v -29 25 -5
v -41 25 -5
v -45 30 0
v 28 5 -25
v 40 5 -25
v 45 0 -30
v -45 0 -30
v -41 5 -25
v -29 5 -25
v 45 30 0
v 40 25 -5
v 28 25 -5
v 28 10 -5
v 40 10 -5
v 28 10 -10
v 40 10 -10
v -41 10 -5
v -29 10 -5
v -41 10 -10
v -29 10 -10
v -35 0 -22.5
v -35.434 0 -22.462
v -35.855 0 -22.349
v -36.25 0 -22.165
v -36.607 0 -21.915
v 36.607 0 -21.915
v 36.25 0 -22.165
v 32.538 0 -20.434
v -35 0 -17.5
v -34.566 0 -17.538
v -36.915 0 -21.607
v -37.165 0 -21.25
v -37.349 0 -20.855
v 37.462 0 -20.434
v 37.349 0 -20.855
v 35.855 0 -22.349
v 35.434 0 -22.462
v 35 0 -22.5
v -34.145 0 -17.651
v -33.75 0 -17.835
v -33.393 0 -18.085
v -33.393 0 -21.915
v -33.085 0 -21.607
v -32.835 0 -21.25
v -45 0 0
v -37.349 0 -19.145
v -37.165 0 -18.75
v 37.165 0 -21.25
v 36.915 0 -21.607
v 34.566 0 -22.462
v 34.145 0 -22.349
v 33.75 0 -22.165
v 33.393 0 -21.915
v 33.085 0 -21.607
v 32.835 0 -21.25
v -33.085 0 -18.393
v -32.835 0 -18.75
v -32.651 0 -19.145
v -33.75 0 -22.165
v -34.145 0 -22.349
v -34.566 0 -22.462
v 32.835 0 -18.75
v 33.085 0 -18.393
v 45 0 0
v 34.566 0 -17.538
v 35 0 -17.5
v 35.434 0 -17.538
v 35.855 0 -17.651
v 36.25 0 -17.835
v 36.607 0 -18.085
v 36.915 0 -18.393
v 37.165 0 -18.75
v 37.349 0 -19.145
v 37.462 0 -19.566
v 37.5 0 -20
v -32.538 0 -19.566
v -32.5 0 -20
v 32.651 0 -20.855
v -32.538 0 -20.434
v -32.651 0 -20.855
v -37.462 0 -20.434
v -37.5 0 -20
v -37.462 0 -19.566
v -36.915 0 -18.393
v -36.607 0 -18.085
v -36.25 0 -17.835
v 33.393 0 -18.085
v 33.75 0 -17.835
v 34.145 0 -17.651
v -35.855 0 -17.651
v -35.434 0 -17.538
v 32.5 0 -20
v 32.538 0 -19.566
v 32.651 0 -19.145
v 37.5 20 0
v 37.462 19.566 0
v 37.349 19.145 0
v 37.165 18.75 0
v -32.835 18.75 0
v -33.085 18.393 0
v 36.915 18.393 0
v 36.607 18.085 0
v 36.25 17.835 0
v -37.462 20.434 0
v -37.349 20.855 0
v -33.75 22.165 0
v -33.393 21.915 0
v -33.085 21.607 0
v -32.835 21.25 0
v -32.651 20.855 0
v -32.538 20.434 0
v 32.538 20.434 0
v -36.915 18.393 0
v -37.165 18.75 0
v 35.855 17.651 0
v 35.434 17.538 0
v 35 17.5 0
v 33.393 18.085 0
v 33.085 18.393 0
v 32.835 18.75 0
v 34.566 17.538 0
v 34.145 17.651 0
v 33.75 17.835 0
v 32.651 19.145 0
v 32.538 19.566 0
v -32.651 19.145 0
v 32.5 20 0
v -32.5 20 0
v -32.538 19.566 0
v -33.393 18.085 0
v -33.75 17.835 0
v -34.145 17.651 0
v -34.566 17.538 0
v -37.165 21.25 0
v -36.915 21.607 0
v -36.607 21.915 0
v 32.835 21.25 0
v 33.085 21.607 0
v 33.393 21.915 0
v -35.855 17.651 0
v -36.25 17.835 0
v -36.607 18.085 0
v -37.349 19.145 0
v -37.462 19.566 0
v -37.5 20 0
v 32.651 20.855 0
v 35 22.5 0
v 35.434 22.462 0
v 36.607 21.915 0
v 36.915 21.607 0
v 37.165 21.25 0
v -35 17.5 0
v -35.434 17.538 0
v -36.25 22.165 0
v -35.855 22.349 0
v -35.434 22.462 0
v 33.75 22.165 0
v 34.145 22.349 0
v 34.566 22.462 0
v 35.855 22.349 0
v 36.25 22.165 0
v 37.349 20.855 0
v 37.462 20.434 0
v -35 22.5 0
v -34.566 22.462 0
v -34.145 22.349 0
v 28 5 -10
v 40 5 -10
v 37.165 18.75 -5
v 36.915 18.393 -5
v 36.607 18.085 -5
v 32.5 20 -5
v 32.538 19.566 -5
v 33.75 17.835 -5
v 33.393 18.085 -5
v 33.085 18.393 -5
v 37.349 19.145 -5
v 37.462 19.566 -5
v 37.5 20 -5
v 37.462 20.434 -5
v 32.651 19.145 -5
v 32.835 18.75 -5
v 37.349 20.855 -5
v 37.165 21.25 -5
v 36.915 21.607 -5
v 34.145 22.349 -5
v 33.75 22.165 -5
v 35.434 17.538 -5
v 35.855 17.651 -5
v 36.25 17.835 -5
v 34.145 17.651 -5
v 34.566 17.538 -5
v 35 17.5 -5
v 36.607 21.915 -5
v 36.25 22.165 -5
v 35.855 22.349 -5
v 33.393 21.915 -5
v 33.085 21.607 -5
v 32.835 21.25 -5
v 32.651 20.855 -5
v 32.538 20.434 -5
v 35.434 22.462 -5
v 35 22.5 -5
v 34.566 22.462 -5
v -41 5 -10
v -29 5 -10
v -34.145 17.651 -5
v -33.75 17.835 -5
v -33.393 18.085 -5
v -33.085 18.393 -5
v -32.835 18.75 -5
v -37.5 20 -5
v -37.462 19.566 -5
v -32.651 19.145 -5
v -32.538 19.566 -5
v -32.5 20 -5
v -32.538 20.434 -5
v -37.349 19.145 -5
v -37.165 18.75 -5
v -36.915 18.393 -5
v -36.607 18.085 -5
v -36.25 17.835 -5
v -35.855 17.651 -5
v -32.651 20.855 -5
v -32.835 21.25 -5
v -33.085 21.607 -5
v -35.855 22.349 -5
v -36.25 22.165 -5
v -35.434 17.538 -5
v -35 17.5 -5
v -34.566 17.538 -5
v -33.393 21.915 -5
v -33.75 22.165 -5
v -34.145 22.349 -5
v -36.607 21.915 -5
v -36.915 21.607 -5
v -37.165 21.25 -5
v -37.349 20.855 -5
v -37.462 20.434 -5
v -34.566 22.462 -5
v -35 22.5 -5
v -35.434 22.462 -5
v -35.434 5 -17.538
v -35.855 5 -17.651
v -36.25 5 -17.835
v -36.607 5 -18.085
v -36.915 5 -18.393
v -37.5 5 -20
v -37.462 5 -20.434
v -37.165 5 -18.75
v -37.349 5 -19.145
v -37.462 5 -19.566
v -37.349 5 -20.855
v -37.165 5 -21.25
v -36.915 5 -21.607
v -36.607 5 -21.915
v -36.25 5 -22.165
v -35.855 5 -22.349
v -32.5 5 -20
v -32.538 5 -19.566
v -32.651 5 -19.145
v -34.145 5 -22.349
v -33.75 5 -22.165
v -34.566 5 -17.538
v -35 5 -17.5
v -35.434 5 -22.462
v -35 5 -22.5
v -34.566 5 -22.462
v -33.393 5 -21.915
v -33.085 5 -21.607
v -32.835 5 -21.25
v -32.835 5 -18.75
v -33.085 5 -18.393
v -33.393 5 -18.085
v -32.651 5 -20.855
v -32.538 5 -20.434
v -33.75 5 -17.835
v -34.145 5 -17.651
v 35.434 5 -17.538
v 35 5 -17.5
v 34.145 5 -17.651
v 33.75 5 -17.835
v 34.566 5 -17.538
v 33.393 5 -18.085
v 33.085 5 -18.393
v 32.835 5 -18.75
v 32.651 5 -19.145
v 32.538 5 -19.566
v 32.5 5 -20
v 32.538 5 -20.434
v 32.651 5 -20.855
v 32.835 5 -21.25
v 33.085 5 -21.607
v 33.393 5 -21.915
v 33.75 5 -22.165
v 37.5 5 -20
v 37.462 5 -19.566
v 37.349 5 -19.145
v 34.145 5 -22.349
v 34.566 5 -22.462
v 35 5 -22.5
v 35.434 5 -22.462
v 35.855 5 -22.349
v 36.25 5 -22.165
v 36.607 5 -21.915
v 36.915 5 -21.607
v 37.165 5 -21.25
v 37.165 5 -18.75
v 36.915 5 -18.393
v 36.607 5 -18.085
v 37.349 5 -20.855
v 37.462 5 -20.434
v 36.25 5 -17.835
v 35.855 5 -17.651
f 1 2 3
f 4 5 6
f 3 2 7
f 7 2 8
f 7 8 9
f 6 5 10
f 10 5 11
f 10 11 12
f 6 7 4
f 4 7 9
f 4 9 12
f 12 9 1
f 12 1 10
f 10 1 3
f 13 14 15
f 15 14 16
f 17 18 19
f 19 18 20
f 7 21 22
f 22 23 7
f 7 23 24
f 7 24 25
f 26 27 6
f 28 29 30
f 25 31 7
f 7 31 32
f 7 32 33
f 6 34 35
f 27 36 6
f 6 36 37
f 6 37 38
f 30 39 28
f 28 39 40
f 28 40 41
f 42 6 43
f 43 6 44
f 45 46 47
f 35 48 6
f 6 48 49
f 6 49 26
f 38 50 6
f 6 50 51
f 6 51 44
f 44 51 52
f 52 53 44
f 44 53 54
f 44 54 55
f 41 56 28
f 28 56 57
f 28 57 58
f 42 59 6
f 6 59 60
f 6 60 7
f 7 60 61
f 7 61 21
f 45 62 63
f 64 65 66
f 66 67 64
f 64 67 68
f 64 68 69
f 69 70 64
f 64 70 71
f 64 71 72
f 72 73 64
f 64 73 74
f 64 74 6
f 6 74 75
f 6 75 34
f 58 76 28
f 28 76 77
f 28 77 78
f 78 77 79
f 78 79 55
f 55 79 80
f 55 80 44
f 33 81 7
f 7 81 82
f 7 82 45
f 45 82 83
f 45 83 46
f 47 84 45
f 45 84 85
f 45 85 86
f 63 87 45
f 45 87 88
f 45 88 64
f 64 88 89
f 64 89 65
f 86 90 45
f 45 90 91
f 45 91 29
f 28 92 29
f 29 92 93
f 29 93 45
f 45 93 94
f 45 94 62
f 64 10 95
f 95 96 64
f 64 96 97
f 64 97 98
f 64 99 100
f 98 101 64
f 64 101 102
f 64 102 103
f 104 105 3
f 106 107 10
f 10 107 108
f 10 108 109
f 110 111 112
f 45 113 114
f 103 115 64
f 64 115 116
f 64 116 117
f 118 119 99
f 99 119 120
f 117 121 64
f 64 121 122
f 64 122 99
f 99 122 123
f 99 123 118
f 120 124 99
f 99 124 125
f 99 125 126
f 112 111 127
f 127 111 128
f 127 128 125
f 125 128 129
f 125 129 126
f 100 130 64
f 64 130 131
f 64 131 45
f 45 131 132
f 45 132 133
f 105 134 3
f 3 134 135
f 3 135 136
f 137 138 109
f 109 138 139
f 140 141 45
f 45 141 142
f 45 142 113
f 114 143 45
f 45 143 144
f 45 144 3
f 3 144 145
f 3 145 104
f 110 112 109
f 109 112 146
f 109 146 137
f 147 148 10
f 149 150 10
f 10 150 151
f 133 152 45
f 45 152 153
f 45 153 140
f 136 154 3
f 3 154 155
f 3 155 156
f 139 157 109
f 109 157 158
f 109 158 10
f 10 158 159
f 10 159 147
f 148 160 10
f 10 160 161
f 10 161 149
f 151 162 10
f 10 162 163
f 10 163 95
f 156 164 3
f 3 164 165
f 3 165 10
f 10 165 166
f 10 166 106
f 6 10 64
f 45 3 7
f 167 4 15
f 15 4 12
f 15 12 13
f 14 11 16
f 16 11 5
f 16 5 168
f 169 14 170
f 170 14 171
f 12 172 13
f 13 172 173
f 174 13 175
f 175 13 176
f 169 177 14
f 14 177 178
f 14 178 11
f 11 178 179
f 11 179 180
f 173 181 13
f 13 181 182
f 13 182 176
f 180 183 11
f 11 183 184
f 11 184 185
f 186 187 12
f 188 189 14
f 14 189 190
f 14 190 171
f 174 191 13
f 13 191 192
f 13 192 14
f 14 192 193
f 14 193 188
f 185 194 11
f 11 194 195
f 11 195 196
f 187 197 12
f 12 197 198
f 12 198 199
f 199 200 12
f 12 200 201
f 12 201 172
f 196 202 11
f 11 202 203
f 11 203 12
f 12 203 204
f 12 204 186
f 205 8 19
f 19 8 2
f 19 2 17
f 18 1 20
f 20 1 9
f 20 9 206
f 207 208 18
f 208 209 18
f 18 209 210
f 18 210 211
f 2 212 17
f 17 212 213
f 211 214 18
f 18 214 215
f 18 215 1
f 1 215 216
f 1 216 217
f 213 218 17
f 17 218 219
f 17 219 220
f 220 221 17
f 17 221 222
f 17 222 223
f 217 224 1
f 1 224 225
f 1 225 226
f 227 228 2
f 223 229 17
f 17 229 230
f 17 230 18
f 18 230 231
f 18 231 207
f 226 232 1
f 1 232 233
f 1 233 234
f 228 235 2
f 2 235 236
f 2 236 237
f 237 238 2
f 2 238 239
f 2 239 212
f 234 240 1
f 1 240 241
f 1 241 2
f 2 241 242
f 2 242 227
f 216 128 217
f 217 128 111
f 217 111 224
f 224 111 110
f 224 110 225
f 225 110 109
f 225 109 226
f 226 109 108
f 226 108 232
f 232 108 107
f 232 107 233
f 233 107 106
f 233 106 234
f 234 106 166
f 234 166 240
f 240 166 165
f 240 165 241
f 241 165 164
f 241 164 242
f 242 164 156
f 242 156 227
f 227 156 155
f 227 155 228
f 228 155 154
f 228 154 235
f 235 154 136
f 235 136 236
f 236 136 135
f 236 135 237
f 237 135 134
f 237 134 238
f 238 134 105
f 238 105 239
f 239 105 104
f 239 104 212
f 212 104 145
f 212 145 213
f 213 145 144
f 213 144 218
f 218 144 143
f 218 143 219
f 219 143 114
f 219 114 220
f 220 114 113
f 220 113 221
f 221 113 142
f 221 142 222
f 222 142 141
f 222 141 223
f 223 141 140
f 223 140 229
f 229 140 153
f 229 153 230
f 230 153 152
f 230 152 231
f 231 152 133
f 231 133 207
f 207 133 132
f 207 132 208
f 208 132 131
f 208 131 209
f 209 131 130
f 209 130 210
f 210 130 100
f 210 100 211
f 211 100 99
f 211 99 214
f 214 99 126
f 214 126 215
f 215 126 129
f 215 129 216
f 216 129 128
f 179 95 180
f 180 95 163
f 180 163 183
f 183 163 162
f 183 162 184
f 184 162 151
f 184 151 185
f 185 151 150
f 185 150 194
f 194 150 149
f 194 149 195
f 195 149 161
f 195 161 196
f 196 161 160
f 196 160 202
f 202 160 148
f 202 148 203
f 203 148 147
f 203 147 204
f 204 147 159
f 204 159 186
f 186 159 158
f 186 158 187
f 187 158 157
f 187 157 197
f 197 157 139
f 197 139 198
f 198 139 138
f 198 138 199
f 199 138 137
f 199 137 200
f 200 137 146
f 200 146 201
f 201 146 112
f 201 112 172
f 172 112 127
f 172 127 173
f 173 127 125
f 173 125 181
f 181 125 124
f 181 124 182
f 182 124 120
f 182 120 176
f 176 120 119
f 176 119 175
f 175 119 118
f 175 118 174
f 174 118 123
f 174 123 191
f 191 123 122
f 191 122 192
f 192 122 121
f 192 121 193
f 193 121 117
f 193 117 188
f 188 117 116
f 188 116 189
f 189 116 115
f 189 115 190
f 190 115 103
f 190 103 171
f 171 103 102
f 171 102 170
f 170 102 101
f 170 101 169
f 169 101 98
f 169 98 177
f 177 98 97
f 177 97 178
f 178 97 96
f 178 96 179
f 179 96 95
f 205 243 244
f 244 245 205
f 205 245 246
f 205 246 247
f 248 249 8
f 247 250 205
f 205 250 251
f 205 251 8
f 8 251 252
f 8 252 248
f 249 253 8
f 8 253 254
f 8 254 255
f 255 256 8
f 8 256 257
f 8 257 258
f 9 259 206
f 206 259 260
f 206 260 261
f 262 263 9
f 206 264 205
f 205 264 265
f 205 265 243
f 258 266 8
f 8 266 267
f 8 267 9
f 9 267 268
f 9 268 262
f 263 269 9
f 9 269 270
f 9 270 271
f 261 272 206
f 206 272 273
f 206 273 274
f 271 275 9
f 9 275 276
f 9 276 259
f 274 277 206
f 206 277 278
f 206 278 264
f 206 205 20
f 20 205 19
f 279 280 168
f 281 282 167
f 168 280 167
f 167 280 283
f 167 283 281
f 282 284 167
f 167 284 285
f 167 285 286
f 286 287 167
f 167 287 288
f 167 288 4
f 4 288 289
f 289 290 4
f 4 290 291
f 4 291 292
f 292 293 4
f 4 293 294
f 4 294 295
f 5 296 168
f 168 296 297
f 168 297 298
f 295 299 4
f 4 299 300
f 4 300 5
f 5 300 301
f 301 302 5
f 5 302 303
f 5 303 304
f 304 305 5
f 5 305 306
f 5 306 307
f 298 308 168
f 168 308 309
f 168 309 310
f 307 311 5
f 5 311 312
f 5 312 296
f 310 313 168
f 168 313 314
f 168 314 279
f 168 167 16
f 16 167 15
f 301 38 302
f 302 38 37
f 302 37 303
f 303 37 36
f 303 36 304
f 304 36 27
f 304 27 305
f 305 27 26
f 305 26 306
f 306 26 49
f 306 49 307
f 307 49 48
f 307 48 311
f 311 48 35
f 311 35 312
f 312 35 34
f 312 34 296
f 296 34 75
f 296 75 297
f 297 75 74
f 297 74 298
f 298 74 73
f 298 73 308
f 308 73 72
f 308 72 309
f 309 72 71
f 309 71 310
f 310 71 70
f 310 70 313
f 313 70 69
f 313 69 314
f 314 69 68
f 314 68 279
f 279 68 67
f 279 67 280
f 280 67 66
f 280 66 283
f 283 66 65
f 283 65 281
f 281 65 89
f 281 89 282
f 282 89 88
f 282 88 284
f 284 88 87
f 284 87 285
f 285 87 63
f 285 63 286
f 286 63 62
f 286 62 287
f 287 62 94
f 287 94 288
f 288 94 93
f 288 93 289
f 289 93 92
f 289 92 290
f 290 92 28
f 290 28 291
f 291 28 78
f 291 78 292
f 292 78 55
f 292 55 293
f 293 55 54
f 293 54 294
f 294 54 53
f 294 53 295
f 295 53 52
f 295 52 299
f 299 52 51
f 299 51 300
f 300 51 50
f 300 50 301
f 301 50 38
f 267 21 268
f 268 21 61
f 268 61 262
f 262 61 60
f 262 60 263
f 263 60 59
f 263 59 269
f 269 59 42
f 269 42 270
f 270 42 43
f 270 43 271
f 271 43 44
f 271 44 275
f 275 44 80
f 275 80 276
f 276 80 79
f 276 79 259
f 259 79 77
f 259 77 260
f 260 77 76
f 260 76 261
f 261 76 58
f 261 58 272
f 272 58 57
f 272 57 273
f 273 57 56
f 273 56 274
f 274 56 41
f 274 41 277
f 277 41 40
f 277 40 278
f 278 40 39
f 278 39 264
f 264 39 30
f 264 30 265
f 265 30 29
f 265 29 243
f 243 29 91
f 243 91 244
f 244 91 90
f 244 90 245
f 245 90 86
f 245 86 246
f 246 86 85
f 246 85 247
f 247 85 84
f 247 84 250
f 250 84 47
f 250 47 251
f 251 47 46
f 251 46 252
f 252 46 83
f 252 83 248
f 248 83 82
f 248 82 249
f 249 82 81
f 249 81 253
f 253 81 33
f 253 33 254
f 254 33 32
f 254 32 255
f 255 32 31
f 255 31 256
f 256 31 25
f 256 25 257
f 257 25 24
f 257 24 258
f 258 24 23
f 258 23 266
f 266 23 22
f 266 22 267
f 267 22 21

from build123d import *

# Parameters (mm, degrees)
BOSS_EXTRUDE1_DEPTH = 45
CUT_EXTRUDE1_START  = -5
SKETCH2_W           = 12
SKETCH2_H           = 20
CUT_EXTRUDE1_DEPTH  = 57.846584384
SKETCH3_R           = 2.5
CUT_EXTRUDE2_DEPTH  = 62.846584384


with BuildPart() as part:
    # Sketch1 → Boss-Extrude1 (new, symmetric)
    with BuildSketch(Plane(origin=(0, 0, 0), x_dir=(0, 0, -1), z_dir=(1, 0, 0))):
        Polygon((0, 0), (0, 30), (30, 0), align=None)
    extrude(amount=BOSS_EXTRUDE1_DEPTH, both=True)

    # Sketch2 → Cut-Extrude1 (cut, through all)
    with BuildSketch(Plane.XY.offset(CUT_EXTRUDE1_START)):
        with Locations((-35, 20)):
            Rectangle(SKETCH2_W, SKETCH2_H)
        with Locations((34, 20)):
            Rectangle(SKETCH2_W, SKETCH2_H)
    cut_extrude1 = extrude(amount=-CUT_EXTRUDE1_DEPTH, mode=Mode.SUBTRACT)

    # Sketch3 → Cut-Extrude2 (cut, through all)
    with BuildSketch(Plane.XY):
        with Locations((-35, 20)):
            Circle(SKETCH3_R)
        with Locations((35, 20)):
            Circle(SKETCH3_R)
    cut_extrude2 = extrude(amount=-CUT_EXTRUDE2_DEPTH, mode=Mode.SUBTRACT)

    # Mirror1: Cut-Extrude1, Cut-Extrude2 across plane
    add(cut_extrude1.mirror(Plane(origin=(0, 0, 0), x_dir=(0, -0.7071067811865477, 0.7071067811865474), z_dir=(0, -0.7071067811865476, -0.7071067811865476))), mode=Mode.SUBTRACT)
    add(cut_extrude2.mirror(Plane(origin=(0, 0, 0), x_dir=(0, -0.7071067811865477, 0.7071067811865474), z_dir=(0, -0.7071067811865476, -0.7071067811865476))), mode=Mode.SUBTRACT)


solid = part.part
